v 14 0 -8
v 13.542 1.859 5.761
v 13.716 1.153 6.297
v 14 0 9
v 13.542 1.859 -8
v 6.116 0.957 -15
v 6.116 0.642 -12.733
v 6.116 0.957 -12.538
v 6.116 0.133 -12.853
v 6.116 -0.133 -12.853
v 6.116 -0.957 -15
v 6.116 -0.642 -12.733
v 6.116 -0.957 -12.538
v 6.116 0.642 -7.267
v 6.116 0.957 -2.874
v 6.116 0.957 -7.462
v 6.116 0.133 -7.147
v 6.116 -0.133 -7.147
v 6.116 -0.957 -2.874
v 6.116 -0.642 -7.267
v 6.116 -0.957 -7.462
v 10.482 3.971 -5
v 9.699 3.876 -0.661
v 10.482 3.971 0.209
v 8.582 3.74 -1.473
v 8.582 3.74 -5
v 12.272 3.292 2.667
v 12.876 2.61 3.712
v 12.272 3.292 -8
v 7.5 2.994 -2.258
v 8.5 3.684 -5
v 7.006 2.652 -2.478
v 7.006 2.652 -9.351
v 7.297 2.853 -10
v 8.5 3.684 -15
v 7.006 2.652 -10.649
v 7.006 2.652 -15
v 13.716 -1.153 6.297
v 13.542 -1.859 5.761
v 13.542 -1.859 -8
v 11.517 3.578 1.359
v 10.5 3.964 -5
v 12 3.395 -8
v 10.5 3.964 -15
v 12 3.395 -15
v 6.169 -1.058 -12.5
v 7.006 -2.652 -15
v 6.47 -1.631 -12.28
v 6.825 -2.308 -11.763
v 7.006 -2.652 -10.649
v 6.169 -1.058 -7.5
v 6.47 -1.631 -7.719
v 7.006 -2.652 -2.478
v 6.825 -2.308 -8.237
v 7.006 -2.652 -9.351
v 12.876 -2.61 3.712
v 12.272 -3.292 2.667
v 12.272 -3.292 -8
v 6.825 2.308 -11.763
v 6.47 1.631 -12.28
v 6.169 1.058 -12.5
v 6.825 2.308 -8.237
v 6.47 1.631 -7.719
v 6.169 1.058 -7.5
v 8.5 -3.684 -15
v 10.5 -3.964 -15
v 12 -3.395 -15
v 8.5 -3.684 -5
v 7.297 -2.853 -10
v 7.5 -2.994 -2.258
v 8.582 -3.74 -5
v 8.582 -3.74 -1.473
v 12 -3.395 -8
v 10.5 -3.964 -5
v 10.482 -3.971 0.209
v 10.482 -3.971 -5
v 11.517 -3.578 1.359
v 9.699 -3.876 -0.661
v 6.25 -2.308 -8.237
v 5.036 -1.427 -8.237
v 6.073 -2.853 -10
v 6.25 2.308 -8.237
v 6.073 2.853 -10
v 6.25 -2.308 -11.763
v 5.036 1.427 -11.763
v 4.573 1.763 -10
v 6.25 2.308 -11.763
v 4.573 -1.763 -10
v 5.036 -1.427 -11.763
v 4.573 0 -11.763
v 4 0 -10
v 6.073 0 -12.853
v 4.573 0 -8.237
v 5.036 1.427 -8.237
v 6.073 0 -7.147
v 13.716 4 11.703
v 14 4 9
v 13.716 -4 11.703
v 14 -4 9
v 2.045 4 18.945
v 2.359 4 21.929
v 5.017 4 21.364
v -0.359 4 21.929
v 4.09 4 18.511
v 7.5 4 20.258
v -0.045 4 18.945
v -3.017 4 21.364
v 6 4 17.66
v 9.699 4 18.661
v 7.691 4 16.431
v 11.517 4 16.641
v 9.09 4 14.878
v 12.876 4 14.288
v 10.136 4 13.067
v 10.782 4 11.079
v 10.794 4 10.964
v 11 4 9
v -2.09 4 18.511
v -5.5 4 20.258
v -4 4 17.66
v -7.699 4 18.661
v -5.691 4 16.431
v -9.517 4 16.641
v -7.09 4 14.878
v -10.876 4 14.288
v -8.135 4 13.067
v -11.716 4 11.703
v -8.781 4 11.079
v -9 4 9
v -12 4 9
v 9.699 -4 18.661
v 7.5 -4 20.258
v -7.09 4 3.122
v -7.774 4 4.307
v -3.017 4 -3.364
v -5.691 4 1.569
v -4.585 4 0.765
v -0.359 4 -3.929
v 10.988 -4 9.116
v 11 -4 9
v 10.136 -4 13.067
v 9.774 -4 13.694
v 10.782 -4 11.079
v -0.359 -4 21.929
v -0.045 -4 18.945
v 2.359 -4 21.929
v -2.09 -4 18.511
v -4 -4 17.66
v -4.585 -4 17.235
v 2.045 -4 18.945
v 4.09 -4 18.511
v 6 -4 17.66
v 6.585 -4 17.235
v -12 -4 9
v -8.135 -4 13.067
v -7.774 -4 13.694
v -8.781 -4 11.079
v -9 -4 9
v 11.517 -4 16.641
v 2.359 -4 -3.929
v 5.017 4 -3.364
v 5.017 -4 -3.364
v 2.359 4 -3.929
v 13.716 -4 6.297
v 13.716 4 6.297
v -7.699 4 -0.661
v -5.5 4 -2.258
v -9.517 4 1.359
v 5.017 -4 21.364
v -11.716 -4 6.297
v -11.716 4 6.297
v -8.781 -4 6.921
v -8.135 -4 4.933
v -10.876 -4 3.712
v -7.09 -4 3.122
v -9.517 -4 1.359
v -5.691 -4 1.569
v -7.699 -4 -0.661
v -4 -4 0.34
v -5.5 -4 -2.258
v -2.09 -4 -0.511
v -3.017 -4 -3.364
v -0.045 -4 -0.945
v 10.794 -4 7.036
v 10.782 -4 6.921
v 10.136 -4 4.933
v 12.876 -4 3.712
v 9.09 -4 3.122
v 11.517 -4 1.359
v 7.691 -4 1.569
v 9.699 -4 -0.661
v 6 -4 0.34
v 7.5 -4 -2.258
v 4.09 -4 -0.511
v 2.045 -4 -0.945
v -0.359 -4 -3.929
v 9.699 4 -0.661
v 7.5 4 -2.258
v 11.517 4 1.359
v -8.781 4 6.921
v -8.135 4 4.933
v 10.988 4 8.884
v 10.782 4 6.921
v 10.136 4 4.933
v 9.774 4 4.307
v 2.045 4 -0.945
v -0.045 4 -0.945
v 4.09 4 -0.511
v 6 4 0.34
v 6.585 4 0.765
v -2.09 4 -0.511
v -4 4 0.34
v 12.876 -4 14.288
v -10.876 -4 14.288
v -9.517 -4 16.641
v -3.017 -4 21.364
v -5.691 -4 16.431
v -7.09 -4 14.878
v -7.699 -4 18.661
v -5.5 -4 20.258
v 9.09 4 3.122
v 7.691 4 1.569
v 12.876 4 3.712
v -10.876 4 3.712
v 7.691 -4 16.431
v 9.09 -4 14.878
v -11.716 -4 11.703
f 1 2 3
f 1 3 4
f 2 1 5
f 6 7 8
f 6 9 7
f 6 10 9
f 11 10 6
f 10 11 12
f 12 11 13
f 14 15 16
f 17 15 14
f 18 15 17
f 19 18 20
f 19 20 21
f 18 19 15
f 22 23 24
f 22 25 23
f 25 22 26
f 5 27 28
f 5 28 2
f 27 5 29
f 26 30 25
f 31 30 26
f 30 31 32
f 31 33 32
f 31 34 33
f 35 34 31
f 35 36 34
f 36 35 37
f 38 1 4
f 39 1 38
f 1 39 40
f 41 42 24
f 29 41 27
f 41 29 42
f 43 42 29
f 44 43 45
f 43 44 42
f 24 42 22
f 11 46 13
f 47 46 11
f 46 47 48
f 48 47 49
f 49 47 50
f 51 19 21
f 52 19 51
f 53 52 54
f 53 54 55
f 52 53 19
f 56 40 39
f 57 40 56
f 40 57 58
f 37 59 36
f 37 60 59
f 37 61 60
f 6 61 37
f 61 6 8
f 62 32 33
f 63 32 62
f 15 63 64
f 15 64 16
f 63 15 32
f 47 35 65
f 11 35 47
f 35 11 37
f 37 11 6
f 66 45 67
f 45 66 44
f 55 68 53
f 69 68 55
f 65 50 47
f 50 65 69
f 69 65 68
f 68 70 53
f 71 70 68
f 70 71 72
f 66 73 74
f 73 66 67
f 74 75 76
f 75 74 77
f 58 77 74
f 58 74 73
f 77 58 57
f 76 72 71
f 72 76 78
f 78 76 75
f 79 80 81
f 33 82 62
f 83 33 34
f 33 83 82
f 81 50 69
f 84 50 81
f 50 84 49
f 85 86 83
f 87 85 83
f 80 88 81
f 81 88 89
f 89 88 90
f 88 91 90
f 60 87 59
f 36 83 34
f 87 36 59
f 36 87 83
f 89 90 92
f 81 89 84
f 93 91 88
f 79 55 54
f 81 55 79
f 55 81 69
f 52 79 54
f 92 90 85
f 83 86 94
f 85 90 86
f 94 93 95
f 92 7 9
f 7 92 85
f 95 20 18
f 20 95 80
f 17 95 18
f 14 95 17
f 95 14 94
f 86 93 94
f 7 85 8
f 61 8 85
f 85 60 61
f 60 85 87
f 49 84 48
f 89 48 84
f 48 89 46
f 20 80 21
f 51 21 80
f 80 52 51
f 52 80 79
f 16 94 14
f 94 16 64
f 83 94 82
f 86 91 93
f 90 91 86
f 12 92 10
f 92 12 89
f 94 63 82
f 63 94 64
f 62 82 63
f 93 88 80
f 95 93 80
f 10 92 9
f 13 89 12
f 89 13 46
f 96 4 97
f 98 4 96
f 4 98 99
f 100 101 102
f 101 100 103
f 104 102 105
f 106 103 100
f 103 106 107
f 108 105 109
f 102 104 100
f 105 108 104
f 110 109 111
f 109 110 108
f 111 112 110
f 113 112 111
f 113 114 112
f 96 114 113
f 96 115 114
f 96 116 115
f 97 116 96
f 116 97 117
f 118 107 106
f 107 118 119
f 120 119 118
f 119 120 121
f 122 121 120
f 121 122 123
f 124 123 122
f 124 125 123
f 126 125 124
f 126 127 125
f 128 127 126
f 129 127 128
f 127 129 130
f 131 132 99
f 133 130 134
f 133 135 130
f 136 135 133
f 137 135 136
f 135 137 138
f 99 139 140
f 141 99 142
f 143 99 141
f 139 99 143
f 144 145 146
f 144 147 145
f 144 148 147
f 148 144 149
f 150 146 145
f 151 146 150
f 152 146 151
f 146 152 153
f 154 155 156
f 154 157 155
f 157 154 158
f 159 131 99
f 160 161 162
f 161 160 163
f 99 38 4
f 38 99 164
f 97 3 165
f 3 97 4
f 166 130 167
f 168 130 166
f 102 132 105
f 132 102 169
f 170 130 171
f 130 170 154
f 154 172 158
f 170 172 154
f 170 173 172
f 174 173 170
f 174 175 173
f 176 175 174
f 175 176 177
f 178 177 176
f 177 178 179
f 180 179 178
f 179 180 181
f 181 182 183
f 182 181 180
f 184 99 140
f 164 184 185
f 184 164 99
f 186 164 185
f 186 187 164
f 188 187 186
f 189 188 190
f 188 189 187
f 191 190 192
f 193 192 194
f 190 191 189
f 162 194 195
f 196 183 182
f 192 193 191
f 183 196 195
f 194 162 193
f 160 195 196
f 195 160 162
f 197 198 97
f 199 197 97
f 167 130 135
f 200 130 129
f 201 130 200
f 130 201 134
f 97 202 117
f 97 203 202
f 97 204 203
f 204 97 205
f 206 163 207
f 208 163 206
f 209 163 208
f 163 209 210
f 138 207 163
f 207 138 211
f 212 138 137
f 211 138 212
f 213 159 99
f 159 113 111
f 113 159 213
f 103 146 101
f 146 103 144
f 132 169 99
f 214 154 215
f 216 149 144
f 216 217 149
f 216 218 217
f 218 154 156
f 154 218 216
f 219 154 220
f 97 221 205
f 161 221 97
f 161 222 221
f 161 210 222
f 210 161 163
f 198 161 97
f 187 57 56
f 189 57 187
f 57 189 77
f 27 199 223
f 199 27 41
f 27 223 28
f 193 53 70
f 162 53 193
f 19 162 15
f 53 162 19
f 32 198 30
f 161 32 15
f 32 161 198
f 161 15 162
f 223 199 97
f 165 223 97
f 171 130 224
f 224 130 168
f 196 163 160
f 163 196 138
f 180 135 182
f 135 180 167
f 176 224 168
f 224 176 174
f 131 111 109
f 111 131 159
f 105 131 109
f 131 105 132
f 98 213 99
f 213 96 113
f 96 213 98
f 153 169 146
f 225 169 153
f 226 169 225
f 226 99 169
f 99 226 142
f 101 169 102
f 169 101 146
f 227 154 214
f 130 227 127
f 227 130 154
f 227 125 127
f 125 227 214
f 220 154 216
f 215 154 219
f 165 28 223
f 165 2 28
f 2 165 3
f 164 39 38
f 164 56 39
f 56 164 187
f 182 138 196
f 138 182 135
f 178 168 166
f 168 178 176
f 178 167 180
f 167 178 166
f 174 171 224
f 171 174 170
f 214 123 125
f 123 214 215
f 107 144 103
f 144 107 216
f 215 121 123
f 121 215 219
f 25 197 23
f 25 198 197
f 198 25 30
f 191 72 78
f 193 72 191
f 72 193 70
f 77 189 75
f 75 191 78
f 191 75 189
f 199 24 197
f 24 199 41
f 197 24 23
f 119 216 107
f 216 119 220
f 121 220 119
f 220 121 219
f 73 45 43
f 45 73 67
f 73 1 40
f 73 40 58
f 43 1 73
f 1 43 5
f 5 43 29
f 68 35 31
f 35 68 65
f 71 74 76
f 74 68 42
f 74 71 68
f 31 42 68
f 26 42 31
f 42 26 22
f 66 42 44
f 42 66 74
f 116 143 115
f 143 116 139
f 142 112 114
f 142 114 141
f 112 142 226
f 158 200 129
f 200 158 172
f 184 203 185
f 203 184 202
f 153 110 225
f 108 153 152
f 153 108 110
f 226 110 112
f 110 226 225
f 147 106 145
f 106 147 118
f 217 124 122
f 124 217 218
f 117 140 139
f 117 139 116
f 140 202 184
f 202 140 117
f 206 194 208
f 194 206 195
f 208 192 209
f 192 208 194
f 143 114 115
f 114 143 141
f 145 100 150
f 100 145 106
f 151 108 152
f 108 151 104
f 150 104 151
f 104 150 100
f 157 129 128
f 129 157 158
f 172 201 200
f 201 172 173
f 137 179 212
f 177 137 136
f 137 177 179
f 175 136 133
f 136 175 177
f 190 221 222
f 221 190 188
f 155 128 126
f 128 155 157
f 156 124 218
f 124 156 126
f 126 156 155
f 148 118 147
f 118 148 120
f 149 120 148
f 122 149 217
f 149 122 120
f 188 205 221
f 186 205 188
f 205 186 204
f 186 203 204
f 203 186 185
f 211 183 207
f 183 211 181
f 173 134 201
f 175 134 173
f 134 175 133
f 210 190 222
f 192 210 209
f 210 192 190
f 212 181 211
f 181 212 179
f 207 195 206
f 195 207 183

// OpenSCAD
difference(){
  union(){
 //import("../lib/hook.stl") ;
 translate([10,0,-3])   color("red") cylinder(24,4,4, true);
 translate([7,0,-10]) sphere(3);
    translate([1,0,9])   rotate([90,0,0]) cylinder(8,13,13, true);
 
  }
translate([17,0,-13])  cube([10,10,10], true);
  translate([9.5,0,-10])  cube([2,10,10], true);
 translate([1,0,9]){rotate([90,0,0]) cylinder(9,10,10, true);}
}
